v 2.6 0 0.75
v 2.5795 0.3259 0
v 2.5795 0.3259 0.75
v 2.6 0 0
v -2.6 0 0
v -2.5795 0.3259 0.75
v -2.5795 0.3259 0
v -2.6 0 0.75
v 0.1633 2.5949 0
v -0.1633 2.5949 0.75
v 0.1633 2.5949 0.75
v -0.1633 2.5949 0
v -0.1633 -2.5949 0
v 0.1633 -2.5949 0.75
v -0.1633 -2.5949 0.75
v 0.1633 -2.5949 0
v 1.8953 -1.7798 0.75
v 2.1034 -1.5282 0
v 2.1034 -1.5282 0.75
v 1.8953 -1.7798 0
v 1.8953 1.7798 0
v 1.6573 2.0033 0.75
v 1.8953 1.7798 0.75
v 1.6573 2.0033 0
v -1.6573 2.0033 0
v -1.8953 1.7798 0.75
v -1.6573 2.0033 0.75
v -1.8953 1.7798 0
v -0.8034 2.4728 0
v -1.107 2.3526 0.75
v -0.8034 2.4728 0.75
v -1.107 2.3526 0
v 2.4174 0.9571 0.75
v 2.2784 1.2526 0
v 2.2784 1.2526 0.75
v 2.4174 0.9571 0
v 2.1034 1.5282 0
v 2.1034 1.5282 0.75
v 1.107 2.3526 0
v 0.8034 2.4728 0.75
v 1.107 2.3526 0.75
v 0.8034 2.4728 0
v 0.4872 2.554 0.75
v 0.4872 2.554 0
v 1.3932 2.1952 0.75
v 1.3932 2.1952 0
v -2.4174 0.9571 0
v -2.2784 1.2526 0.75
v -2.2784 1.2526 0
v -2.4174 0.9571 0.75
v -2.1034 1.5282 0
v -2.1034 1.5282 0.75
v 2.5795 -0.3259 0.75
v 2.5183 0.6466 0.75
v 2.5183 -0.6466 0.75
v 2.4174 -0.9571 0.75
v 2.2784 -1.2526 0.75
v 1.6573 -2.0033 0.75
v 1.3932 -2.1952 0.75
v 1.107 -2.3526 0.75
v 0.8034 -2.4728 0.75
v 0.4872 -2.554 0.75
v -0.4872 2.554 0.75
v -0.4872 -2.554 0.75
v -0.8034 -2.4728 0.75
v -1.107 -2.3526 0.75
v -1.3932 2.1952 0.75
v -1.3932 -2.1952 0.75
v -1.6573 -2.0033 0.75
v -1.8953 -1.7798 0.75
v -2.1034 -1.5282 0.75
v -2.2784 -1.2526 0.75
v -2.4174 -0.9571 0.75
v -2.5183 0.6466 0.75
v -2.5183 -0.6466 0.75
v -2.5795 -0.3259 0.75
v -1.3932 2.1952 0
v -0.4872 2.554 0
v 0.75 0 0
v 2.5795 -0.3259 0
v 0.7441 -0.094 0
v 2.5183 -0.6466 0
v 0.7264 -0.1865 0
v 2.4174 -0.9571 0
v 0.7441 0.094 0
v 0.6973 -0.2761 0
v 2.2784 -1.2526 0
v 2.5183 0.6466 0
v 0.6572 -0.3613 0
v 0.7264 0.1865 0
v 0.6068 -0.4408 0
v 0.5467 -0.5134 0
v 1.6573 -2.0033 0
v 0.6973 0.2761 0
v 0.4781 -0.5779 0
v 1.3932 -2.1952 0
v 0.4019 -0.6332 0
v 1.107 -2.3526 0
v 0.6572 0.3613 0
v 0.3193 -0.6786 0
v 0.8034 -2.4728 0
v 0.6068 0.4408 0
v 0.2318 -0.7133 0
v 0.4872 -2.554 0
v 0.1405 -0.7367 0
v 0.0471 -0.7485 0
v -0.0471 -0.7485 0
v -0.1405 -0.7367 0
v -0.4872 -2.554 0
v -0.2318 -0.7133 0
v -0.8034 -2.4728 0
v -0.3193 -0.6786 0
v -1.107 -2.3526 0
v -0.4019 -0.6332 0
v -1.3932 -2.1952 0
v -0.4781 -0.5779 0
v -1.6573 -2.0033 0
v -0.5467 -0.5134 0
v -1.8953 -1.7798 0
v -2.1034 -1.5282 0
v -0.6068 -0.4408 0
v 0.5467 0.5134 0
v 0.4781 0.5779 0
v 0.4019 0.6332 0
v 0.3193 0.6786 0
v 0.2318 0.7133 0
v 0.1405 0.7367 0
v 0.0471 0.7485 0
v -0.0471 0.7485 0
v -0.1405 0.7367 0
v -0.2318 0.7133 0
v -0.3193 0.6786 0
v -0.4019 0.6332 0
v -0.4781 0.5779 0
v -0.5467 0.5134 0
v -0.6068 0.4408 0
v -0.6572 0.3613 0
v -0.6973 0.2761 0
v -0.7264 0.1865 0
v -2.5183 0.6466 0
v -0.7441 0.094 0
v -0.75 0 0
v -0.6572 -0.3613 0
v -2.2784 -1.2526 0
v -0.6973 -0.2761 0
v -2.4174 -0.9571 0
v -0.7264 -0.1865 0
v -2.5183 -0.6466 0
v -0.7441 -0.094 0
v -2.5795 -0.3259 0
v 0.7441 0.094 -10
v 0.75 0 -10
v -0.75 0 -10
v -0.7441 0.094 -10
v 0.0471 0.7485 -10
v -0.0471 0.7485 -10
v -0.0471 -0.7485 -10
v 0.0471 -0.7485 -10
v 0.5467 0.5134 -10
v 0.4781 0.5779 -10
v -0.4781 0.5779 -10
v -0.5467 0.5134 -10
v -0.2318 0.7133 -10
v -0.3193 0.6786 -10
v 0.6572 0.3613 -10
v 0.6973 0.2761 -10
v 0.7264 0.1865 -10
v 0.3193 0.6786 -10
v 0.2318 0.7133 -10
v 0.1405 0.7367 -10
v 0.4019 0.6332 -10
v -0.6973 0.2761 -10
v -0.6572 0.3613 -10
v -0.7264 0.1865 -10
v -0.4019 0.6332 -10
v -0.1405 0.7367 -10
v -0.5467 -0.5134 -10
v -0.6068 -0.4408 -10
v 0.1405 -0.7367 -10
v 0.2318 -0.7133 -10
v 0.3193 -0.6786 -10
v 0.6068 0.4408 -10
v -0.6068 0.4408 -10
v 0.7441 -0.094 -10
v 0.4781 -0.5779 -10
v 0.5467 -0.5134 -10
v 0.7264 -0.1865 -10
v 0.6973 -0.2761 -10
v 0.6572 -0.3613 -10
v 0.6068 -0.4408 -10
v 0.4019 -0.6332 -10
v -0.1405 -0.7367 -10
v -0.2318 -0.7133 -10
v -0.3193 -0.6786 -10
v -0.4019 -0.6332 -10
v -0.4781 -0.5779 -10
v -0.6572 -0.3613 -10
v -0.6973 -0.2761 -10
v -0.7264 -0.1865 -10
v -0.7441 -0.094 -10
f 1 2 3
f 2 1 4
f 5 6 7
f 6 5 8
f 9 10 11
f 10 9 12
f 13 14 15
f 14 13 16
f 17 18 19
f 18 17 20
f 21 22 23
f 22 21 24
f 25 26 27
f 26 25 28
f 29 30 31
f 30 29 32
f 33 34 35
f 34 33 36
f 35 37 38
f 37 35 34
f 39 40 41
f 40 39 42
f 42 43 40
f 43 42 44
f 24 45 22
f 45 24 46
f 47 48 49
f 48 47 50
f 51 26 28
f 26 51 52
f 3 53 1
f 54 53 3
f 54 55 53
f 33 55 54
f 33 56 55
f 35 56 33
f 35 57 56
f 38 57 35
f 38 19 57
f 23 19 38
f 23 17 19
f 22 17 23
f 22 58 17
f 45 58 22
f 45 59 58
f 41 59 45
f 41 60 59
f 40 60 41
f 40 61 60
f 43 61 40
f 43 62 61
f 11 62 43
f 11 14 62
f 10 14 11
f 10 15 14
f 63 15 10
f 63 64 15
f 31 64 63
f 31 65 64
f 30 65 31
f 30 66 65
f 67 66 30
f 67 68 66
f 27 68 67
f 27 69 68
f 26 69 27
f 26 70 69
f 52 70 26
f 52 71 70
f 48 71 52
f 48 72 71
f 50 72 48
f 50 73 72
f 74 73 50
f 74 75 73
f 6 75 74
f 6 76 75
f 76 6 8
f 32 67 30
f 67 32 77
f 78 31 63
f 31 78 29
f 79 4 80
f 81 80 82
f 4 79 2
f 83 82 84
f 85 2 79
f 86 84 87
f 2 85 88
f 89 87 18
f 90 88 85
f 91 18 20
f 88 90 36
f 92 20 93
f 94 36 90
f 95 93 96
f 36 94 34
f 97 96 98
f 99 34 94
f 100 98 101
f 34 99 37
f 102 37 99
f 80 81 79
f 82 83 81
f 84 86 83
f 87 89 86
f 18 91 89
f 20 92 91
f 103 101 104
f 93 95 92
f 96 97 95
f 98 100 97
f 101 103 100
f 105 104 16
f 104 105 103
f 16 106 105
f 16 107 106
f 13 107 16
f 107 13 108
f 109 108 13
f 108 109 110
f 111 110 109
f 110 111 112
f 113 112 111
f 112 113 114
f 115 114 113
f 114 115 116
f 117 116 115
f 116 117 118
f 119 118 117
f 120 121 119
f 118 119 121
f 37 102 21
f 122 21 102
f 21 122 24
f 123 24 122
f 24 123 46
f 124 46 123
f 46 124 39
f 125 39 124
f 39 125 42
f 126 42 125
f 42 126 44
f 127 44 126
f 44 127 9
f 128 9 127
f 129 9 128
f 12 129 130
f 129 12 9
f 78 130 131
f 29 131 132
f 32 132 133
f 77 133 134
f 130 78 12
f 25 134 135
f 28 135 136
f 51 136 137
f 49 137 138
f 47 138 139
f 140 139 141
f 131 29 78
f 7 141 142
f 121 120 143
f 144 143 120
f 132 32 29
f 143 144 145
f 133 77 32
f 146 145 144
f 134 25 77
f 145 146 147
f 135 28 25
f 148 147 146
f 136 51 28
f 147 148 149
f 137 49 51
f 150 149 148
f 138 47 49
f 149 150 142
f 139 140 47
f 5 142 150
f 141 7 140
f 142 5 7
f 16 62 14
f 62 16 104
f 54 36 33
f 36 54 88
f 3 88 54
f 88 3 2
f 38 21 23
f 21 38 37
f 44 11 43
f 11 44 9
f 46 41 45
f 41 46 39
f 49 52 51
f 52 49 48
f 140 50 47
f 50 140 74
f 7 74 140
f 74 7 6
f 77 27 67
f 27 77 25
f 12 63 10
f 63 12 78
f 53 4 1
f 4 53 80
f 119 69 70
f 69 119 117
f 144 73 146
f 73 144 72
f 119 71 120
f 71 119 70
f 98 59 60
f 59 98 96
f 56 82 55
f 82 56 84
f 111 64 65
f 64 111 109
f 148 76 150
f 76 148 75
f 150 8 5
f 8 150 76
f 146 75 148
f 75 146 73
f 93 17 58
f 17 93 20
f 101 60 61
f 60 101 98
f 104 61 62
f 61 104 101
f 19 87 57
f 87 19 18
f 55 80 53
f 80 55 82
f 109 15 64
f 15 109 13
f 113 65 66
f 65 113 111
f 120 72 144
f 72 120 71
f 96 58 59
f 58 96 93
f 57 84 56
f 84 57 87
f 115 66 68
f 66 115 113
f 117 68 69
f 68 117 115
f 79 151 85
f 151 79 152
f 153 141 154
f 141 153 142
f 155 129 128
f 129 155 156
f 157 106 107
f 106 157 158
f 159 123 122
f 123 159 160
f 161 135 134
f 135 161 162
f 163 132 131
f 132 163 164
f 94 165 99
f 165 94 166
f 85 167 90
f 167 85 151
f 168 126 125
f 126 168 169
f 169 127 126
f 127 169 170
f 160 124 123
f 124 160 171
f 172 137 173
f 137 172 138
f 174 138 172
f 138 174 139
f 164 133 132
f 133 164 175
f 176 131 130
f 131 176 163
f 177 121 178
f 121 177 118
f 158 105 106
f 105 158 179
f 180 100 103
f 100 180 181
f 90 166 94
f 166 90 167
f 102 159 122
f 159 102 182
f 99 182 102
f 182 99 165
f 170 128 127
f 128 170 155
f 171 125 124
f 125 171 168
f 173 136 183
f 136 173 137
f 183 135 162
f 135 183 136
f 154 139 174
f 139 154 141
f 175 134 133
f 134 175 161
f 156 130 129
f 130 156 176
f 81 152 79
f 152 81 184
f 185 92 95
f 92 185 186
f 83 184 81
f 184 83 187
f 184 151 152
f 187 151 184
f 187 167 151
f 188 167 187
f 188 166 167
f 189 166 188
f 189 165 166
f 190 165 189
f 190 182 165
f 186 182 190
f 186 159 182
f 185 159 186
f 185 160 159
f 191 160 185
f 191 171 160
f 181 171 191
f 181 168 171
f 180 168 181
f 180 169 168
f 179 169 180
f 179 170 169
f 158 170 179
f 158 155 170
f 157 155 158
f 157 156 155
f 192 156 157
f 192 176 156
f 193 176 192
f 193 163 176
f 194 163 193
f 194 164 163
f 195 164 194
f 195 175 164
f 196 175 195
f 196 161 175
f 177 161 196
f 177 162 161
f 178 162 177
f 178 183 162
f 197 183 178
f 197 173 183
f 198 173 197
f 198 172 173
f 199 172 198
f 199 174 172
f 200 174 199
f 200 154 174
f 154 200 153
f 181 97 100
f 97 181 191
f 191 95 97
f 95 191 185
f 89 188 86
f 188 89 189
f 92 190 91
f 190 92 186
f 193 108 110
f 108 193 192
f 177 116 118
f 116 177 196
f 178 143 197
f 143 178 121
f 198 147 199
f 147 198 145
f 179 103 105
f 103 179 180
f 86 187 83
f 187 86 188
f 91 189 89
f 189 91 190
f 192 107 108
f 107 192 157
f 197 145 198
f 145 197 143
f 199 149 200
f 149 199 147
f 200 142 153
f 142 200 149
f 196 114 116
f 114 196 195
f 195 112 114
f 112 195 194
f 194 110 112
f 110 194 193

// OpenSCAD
$fn = 50;


difference() {
	union() {
		translate(v = [0, 0, 0]) {
			rotate(a = [0, 0, 0]) {
				cylinder(h = 0.7500000000, r = 2.6000000000);
			}
		}
		translate(v = [0, 0, -10]) {
			rotate(a = [0, 0, 0]) {
				cylinder(h = 10, r = 0.7500000000);
			}
		}
	}
	union();
}
